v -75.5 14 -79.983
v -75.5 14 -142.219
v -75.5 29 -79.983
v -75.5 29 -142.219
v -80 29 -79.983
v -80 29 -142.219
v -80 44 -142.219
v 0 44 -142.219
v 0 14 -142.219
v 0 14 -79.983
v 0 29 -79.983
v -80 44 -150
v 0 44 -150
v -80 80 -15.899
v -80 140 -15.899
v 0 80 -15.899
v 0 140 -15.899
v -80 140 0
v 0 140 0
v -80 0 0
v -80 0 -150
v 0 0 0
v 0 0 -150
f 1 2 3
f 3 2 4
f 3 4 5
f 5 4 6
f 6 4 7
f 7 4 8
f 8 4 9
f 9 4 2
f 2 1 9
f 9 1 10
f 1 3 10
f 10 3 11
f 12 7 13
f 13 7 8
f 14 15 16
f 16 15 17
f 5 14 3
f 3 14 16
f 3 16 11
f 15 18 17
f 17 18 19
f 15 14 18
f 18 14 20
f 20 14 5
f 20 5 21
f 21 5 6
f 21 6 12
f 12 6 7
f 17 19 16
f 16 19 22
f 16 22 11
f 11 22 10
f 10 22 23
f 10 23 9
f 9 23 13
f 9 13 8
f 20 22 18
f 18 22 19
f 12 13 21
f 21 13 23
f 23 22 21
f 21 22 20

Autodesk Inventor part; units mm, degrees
ref_plane "YZ Plane" through (0, 0, 0) normal (1, 0, 0) x (0, 1, 0)
ref_plane "XZ Plane" through (0, 0, 0) normal (0, 1, 0) x (-1, 0, 0)
ref_plane "XY Plane" through (0, 0, 0) normal (0, 0, 1) x (1, 0, 0)
sketch "Sketch1" plane through (0, 0, 0) normal (0, 1, 0) x (-1, 0, 0)
  line L0 (0, 0) -> (80, 0)
  line L1 (80, 0) -> (80, -150)
  line L2 (80, -150) -> (0, -150)
  line L3 (0, -150) -> (0, 0)
  dimension "d0" = 80
  dimension "d1" = 150
extrude "Extrusion1" add sketch "Sketch1" along normal blind 140
sketch "Sketch2" plane through (0, 0, 0) normal (1, 0, 0) x (0, 0, -1)
  line L0 (150, 140) -> (0, 140) projected
  line L1 (15.8986, 80) -> (79.9832, 29)
  line L2 (79.9832, 29) -> (79.9832, 14)
  line L3 (79.9832, 14) -> (142.2187, 14)
  line L4 (142.2187, 14) -> (142.2187, 44)
  line L5 (142.2187, 44) -> (150, 44)
  line L6 (150, 0) -> (150, 140) projected
  line L7 (150, 44) -> (150, 140)
  line L8 (150, 140) -> (61.0962, 140)
  line L9 (15.8986, 100) -> (15.8986, 80)
  line L10 (0, 0) -> (150, 0) projected
  line L11 (61.0962, 140) -> (15.8986, 140)
  line L12 (15.8986, 100) -> (15.8986, 140)
  point P0 (146.1093, 44)
  point P1 (111.101, 14)
  dimension "d7" = 15
  dimension "d8" = 30
  dimension "d9" = 14
extrude "Extrusion2" cut sketch "Sketch2" against normal blind 140
sketch "Sketch6" plane through (0, 14, -79.9832) normal (0, 1, 0) x (1, 0, 0)
  line L0 (0, 62.2355) -> (-80, 62.2355) projected
  line L1 (0, 0) -> (-80, 0) projected
  line L2 (-80, 62.2355) -> (-75.5003, 62.2355)
  line L3 (-75.5003, 62.2355) -> (-75.5003, 0)
  line L4 (-75.5003, 0) -> (-80, 0)
  line L5 (-80, 0) -> (-80, 62.2355)
  point P0 (0, -79.9832)
extrude "Extrusion6" add sketch "Sketch6" along normal blind 15
properties part number "Left"
